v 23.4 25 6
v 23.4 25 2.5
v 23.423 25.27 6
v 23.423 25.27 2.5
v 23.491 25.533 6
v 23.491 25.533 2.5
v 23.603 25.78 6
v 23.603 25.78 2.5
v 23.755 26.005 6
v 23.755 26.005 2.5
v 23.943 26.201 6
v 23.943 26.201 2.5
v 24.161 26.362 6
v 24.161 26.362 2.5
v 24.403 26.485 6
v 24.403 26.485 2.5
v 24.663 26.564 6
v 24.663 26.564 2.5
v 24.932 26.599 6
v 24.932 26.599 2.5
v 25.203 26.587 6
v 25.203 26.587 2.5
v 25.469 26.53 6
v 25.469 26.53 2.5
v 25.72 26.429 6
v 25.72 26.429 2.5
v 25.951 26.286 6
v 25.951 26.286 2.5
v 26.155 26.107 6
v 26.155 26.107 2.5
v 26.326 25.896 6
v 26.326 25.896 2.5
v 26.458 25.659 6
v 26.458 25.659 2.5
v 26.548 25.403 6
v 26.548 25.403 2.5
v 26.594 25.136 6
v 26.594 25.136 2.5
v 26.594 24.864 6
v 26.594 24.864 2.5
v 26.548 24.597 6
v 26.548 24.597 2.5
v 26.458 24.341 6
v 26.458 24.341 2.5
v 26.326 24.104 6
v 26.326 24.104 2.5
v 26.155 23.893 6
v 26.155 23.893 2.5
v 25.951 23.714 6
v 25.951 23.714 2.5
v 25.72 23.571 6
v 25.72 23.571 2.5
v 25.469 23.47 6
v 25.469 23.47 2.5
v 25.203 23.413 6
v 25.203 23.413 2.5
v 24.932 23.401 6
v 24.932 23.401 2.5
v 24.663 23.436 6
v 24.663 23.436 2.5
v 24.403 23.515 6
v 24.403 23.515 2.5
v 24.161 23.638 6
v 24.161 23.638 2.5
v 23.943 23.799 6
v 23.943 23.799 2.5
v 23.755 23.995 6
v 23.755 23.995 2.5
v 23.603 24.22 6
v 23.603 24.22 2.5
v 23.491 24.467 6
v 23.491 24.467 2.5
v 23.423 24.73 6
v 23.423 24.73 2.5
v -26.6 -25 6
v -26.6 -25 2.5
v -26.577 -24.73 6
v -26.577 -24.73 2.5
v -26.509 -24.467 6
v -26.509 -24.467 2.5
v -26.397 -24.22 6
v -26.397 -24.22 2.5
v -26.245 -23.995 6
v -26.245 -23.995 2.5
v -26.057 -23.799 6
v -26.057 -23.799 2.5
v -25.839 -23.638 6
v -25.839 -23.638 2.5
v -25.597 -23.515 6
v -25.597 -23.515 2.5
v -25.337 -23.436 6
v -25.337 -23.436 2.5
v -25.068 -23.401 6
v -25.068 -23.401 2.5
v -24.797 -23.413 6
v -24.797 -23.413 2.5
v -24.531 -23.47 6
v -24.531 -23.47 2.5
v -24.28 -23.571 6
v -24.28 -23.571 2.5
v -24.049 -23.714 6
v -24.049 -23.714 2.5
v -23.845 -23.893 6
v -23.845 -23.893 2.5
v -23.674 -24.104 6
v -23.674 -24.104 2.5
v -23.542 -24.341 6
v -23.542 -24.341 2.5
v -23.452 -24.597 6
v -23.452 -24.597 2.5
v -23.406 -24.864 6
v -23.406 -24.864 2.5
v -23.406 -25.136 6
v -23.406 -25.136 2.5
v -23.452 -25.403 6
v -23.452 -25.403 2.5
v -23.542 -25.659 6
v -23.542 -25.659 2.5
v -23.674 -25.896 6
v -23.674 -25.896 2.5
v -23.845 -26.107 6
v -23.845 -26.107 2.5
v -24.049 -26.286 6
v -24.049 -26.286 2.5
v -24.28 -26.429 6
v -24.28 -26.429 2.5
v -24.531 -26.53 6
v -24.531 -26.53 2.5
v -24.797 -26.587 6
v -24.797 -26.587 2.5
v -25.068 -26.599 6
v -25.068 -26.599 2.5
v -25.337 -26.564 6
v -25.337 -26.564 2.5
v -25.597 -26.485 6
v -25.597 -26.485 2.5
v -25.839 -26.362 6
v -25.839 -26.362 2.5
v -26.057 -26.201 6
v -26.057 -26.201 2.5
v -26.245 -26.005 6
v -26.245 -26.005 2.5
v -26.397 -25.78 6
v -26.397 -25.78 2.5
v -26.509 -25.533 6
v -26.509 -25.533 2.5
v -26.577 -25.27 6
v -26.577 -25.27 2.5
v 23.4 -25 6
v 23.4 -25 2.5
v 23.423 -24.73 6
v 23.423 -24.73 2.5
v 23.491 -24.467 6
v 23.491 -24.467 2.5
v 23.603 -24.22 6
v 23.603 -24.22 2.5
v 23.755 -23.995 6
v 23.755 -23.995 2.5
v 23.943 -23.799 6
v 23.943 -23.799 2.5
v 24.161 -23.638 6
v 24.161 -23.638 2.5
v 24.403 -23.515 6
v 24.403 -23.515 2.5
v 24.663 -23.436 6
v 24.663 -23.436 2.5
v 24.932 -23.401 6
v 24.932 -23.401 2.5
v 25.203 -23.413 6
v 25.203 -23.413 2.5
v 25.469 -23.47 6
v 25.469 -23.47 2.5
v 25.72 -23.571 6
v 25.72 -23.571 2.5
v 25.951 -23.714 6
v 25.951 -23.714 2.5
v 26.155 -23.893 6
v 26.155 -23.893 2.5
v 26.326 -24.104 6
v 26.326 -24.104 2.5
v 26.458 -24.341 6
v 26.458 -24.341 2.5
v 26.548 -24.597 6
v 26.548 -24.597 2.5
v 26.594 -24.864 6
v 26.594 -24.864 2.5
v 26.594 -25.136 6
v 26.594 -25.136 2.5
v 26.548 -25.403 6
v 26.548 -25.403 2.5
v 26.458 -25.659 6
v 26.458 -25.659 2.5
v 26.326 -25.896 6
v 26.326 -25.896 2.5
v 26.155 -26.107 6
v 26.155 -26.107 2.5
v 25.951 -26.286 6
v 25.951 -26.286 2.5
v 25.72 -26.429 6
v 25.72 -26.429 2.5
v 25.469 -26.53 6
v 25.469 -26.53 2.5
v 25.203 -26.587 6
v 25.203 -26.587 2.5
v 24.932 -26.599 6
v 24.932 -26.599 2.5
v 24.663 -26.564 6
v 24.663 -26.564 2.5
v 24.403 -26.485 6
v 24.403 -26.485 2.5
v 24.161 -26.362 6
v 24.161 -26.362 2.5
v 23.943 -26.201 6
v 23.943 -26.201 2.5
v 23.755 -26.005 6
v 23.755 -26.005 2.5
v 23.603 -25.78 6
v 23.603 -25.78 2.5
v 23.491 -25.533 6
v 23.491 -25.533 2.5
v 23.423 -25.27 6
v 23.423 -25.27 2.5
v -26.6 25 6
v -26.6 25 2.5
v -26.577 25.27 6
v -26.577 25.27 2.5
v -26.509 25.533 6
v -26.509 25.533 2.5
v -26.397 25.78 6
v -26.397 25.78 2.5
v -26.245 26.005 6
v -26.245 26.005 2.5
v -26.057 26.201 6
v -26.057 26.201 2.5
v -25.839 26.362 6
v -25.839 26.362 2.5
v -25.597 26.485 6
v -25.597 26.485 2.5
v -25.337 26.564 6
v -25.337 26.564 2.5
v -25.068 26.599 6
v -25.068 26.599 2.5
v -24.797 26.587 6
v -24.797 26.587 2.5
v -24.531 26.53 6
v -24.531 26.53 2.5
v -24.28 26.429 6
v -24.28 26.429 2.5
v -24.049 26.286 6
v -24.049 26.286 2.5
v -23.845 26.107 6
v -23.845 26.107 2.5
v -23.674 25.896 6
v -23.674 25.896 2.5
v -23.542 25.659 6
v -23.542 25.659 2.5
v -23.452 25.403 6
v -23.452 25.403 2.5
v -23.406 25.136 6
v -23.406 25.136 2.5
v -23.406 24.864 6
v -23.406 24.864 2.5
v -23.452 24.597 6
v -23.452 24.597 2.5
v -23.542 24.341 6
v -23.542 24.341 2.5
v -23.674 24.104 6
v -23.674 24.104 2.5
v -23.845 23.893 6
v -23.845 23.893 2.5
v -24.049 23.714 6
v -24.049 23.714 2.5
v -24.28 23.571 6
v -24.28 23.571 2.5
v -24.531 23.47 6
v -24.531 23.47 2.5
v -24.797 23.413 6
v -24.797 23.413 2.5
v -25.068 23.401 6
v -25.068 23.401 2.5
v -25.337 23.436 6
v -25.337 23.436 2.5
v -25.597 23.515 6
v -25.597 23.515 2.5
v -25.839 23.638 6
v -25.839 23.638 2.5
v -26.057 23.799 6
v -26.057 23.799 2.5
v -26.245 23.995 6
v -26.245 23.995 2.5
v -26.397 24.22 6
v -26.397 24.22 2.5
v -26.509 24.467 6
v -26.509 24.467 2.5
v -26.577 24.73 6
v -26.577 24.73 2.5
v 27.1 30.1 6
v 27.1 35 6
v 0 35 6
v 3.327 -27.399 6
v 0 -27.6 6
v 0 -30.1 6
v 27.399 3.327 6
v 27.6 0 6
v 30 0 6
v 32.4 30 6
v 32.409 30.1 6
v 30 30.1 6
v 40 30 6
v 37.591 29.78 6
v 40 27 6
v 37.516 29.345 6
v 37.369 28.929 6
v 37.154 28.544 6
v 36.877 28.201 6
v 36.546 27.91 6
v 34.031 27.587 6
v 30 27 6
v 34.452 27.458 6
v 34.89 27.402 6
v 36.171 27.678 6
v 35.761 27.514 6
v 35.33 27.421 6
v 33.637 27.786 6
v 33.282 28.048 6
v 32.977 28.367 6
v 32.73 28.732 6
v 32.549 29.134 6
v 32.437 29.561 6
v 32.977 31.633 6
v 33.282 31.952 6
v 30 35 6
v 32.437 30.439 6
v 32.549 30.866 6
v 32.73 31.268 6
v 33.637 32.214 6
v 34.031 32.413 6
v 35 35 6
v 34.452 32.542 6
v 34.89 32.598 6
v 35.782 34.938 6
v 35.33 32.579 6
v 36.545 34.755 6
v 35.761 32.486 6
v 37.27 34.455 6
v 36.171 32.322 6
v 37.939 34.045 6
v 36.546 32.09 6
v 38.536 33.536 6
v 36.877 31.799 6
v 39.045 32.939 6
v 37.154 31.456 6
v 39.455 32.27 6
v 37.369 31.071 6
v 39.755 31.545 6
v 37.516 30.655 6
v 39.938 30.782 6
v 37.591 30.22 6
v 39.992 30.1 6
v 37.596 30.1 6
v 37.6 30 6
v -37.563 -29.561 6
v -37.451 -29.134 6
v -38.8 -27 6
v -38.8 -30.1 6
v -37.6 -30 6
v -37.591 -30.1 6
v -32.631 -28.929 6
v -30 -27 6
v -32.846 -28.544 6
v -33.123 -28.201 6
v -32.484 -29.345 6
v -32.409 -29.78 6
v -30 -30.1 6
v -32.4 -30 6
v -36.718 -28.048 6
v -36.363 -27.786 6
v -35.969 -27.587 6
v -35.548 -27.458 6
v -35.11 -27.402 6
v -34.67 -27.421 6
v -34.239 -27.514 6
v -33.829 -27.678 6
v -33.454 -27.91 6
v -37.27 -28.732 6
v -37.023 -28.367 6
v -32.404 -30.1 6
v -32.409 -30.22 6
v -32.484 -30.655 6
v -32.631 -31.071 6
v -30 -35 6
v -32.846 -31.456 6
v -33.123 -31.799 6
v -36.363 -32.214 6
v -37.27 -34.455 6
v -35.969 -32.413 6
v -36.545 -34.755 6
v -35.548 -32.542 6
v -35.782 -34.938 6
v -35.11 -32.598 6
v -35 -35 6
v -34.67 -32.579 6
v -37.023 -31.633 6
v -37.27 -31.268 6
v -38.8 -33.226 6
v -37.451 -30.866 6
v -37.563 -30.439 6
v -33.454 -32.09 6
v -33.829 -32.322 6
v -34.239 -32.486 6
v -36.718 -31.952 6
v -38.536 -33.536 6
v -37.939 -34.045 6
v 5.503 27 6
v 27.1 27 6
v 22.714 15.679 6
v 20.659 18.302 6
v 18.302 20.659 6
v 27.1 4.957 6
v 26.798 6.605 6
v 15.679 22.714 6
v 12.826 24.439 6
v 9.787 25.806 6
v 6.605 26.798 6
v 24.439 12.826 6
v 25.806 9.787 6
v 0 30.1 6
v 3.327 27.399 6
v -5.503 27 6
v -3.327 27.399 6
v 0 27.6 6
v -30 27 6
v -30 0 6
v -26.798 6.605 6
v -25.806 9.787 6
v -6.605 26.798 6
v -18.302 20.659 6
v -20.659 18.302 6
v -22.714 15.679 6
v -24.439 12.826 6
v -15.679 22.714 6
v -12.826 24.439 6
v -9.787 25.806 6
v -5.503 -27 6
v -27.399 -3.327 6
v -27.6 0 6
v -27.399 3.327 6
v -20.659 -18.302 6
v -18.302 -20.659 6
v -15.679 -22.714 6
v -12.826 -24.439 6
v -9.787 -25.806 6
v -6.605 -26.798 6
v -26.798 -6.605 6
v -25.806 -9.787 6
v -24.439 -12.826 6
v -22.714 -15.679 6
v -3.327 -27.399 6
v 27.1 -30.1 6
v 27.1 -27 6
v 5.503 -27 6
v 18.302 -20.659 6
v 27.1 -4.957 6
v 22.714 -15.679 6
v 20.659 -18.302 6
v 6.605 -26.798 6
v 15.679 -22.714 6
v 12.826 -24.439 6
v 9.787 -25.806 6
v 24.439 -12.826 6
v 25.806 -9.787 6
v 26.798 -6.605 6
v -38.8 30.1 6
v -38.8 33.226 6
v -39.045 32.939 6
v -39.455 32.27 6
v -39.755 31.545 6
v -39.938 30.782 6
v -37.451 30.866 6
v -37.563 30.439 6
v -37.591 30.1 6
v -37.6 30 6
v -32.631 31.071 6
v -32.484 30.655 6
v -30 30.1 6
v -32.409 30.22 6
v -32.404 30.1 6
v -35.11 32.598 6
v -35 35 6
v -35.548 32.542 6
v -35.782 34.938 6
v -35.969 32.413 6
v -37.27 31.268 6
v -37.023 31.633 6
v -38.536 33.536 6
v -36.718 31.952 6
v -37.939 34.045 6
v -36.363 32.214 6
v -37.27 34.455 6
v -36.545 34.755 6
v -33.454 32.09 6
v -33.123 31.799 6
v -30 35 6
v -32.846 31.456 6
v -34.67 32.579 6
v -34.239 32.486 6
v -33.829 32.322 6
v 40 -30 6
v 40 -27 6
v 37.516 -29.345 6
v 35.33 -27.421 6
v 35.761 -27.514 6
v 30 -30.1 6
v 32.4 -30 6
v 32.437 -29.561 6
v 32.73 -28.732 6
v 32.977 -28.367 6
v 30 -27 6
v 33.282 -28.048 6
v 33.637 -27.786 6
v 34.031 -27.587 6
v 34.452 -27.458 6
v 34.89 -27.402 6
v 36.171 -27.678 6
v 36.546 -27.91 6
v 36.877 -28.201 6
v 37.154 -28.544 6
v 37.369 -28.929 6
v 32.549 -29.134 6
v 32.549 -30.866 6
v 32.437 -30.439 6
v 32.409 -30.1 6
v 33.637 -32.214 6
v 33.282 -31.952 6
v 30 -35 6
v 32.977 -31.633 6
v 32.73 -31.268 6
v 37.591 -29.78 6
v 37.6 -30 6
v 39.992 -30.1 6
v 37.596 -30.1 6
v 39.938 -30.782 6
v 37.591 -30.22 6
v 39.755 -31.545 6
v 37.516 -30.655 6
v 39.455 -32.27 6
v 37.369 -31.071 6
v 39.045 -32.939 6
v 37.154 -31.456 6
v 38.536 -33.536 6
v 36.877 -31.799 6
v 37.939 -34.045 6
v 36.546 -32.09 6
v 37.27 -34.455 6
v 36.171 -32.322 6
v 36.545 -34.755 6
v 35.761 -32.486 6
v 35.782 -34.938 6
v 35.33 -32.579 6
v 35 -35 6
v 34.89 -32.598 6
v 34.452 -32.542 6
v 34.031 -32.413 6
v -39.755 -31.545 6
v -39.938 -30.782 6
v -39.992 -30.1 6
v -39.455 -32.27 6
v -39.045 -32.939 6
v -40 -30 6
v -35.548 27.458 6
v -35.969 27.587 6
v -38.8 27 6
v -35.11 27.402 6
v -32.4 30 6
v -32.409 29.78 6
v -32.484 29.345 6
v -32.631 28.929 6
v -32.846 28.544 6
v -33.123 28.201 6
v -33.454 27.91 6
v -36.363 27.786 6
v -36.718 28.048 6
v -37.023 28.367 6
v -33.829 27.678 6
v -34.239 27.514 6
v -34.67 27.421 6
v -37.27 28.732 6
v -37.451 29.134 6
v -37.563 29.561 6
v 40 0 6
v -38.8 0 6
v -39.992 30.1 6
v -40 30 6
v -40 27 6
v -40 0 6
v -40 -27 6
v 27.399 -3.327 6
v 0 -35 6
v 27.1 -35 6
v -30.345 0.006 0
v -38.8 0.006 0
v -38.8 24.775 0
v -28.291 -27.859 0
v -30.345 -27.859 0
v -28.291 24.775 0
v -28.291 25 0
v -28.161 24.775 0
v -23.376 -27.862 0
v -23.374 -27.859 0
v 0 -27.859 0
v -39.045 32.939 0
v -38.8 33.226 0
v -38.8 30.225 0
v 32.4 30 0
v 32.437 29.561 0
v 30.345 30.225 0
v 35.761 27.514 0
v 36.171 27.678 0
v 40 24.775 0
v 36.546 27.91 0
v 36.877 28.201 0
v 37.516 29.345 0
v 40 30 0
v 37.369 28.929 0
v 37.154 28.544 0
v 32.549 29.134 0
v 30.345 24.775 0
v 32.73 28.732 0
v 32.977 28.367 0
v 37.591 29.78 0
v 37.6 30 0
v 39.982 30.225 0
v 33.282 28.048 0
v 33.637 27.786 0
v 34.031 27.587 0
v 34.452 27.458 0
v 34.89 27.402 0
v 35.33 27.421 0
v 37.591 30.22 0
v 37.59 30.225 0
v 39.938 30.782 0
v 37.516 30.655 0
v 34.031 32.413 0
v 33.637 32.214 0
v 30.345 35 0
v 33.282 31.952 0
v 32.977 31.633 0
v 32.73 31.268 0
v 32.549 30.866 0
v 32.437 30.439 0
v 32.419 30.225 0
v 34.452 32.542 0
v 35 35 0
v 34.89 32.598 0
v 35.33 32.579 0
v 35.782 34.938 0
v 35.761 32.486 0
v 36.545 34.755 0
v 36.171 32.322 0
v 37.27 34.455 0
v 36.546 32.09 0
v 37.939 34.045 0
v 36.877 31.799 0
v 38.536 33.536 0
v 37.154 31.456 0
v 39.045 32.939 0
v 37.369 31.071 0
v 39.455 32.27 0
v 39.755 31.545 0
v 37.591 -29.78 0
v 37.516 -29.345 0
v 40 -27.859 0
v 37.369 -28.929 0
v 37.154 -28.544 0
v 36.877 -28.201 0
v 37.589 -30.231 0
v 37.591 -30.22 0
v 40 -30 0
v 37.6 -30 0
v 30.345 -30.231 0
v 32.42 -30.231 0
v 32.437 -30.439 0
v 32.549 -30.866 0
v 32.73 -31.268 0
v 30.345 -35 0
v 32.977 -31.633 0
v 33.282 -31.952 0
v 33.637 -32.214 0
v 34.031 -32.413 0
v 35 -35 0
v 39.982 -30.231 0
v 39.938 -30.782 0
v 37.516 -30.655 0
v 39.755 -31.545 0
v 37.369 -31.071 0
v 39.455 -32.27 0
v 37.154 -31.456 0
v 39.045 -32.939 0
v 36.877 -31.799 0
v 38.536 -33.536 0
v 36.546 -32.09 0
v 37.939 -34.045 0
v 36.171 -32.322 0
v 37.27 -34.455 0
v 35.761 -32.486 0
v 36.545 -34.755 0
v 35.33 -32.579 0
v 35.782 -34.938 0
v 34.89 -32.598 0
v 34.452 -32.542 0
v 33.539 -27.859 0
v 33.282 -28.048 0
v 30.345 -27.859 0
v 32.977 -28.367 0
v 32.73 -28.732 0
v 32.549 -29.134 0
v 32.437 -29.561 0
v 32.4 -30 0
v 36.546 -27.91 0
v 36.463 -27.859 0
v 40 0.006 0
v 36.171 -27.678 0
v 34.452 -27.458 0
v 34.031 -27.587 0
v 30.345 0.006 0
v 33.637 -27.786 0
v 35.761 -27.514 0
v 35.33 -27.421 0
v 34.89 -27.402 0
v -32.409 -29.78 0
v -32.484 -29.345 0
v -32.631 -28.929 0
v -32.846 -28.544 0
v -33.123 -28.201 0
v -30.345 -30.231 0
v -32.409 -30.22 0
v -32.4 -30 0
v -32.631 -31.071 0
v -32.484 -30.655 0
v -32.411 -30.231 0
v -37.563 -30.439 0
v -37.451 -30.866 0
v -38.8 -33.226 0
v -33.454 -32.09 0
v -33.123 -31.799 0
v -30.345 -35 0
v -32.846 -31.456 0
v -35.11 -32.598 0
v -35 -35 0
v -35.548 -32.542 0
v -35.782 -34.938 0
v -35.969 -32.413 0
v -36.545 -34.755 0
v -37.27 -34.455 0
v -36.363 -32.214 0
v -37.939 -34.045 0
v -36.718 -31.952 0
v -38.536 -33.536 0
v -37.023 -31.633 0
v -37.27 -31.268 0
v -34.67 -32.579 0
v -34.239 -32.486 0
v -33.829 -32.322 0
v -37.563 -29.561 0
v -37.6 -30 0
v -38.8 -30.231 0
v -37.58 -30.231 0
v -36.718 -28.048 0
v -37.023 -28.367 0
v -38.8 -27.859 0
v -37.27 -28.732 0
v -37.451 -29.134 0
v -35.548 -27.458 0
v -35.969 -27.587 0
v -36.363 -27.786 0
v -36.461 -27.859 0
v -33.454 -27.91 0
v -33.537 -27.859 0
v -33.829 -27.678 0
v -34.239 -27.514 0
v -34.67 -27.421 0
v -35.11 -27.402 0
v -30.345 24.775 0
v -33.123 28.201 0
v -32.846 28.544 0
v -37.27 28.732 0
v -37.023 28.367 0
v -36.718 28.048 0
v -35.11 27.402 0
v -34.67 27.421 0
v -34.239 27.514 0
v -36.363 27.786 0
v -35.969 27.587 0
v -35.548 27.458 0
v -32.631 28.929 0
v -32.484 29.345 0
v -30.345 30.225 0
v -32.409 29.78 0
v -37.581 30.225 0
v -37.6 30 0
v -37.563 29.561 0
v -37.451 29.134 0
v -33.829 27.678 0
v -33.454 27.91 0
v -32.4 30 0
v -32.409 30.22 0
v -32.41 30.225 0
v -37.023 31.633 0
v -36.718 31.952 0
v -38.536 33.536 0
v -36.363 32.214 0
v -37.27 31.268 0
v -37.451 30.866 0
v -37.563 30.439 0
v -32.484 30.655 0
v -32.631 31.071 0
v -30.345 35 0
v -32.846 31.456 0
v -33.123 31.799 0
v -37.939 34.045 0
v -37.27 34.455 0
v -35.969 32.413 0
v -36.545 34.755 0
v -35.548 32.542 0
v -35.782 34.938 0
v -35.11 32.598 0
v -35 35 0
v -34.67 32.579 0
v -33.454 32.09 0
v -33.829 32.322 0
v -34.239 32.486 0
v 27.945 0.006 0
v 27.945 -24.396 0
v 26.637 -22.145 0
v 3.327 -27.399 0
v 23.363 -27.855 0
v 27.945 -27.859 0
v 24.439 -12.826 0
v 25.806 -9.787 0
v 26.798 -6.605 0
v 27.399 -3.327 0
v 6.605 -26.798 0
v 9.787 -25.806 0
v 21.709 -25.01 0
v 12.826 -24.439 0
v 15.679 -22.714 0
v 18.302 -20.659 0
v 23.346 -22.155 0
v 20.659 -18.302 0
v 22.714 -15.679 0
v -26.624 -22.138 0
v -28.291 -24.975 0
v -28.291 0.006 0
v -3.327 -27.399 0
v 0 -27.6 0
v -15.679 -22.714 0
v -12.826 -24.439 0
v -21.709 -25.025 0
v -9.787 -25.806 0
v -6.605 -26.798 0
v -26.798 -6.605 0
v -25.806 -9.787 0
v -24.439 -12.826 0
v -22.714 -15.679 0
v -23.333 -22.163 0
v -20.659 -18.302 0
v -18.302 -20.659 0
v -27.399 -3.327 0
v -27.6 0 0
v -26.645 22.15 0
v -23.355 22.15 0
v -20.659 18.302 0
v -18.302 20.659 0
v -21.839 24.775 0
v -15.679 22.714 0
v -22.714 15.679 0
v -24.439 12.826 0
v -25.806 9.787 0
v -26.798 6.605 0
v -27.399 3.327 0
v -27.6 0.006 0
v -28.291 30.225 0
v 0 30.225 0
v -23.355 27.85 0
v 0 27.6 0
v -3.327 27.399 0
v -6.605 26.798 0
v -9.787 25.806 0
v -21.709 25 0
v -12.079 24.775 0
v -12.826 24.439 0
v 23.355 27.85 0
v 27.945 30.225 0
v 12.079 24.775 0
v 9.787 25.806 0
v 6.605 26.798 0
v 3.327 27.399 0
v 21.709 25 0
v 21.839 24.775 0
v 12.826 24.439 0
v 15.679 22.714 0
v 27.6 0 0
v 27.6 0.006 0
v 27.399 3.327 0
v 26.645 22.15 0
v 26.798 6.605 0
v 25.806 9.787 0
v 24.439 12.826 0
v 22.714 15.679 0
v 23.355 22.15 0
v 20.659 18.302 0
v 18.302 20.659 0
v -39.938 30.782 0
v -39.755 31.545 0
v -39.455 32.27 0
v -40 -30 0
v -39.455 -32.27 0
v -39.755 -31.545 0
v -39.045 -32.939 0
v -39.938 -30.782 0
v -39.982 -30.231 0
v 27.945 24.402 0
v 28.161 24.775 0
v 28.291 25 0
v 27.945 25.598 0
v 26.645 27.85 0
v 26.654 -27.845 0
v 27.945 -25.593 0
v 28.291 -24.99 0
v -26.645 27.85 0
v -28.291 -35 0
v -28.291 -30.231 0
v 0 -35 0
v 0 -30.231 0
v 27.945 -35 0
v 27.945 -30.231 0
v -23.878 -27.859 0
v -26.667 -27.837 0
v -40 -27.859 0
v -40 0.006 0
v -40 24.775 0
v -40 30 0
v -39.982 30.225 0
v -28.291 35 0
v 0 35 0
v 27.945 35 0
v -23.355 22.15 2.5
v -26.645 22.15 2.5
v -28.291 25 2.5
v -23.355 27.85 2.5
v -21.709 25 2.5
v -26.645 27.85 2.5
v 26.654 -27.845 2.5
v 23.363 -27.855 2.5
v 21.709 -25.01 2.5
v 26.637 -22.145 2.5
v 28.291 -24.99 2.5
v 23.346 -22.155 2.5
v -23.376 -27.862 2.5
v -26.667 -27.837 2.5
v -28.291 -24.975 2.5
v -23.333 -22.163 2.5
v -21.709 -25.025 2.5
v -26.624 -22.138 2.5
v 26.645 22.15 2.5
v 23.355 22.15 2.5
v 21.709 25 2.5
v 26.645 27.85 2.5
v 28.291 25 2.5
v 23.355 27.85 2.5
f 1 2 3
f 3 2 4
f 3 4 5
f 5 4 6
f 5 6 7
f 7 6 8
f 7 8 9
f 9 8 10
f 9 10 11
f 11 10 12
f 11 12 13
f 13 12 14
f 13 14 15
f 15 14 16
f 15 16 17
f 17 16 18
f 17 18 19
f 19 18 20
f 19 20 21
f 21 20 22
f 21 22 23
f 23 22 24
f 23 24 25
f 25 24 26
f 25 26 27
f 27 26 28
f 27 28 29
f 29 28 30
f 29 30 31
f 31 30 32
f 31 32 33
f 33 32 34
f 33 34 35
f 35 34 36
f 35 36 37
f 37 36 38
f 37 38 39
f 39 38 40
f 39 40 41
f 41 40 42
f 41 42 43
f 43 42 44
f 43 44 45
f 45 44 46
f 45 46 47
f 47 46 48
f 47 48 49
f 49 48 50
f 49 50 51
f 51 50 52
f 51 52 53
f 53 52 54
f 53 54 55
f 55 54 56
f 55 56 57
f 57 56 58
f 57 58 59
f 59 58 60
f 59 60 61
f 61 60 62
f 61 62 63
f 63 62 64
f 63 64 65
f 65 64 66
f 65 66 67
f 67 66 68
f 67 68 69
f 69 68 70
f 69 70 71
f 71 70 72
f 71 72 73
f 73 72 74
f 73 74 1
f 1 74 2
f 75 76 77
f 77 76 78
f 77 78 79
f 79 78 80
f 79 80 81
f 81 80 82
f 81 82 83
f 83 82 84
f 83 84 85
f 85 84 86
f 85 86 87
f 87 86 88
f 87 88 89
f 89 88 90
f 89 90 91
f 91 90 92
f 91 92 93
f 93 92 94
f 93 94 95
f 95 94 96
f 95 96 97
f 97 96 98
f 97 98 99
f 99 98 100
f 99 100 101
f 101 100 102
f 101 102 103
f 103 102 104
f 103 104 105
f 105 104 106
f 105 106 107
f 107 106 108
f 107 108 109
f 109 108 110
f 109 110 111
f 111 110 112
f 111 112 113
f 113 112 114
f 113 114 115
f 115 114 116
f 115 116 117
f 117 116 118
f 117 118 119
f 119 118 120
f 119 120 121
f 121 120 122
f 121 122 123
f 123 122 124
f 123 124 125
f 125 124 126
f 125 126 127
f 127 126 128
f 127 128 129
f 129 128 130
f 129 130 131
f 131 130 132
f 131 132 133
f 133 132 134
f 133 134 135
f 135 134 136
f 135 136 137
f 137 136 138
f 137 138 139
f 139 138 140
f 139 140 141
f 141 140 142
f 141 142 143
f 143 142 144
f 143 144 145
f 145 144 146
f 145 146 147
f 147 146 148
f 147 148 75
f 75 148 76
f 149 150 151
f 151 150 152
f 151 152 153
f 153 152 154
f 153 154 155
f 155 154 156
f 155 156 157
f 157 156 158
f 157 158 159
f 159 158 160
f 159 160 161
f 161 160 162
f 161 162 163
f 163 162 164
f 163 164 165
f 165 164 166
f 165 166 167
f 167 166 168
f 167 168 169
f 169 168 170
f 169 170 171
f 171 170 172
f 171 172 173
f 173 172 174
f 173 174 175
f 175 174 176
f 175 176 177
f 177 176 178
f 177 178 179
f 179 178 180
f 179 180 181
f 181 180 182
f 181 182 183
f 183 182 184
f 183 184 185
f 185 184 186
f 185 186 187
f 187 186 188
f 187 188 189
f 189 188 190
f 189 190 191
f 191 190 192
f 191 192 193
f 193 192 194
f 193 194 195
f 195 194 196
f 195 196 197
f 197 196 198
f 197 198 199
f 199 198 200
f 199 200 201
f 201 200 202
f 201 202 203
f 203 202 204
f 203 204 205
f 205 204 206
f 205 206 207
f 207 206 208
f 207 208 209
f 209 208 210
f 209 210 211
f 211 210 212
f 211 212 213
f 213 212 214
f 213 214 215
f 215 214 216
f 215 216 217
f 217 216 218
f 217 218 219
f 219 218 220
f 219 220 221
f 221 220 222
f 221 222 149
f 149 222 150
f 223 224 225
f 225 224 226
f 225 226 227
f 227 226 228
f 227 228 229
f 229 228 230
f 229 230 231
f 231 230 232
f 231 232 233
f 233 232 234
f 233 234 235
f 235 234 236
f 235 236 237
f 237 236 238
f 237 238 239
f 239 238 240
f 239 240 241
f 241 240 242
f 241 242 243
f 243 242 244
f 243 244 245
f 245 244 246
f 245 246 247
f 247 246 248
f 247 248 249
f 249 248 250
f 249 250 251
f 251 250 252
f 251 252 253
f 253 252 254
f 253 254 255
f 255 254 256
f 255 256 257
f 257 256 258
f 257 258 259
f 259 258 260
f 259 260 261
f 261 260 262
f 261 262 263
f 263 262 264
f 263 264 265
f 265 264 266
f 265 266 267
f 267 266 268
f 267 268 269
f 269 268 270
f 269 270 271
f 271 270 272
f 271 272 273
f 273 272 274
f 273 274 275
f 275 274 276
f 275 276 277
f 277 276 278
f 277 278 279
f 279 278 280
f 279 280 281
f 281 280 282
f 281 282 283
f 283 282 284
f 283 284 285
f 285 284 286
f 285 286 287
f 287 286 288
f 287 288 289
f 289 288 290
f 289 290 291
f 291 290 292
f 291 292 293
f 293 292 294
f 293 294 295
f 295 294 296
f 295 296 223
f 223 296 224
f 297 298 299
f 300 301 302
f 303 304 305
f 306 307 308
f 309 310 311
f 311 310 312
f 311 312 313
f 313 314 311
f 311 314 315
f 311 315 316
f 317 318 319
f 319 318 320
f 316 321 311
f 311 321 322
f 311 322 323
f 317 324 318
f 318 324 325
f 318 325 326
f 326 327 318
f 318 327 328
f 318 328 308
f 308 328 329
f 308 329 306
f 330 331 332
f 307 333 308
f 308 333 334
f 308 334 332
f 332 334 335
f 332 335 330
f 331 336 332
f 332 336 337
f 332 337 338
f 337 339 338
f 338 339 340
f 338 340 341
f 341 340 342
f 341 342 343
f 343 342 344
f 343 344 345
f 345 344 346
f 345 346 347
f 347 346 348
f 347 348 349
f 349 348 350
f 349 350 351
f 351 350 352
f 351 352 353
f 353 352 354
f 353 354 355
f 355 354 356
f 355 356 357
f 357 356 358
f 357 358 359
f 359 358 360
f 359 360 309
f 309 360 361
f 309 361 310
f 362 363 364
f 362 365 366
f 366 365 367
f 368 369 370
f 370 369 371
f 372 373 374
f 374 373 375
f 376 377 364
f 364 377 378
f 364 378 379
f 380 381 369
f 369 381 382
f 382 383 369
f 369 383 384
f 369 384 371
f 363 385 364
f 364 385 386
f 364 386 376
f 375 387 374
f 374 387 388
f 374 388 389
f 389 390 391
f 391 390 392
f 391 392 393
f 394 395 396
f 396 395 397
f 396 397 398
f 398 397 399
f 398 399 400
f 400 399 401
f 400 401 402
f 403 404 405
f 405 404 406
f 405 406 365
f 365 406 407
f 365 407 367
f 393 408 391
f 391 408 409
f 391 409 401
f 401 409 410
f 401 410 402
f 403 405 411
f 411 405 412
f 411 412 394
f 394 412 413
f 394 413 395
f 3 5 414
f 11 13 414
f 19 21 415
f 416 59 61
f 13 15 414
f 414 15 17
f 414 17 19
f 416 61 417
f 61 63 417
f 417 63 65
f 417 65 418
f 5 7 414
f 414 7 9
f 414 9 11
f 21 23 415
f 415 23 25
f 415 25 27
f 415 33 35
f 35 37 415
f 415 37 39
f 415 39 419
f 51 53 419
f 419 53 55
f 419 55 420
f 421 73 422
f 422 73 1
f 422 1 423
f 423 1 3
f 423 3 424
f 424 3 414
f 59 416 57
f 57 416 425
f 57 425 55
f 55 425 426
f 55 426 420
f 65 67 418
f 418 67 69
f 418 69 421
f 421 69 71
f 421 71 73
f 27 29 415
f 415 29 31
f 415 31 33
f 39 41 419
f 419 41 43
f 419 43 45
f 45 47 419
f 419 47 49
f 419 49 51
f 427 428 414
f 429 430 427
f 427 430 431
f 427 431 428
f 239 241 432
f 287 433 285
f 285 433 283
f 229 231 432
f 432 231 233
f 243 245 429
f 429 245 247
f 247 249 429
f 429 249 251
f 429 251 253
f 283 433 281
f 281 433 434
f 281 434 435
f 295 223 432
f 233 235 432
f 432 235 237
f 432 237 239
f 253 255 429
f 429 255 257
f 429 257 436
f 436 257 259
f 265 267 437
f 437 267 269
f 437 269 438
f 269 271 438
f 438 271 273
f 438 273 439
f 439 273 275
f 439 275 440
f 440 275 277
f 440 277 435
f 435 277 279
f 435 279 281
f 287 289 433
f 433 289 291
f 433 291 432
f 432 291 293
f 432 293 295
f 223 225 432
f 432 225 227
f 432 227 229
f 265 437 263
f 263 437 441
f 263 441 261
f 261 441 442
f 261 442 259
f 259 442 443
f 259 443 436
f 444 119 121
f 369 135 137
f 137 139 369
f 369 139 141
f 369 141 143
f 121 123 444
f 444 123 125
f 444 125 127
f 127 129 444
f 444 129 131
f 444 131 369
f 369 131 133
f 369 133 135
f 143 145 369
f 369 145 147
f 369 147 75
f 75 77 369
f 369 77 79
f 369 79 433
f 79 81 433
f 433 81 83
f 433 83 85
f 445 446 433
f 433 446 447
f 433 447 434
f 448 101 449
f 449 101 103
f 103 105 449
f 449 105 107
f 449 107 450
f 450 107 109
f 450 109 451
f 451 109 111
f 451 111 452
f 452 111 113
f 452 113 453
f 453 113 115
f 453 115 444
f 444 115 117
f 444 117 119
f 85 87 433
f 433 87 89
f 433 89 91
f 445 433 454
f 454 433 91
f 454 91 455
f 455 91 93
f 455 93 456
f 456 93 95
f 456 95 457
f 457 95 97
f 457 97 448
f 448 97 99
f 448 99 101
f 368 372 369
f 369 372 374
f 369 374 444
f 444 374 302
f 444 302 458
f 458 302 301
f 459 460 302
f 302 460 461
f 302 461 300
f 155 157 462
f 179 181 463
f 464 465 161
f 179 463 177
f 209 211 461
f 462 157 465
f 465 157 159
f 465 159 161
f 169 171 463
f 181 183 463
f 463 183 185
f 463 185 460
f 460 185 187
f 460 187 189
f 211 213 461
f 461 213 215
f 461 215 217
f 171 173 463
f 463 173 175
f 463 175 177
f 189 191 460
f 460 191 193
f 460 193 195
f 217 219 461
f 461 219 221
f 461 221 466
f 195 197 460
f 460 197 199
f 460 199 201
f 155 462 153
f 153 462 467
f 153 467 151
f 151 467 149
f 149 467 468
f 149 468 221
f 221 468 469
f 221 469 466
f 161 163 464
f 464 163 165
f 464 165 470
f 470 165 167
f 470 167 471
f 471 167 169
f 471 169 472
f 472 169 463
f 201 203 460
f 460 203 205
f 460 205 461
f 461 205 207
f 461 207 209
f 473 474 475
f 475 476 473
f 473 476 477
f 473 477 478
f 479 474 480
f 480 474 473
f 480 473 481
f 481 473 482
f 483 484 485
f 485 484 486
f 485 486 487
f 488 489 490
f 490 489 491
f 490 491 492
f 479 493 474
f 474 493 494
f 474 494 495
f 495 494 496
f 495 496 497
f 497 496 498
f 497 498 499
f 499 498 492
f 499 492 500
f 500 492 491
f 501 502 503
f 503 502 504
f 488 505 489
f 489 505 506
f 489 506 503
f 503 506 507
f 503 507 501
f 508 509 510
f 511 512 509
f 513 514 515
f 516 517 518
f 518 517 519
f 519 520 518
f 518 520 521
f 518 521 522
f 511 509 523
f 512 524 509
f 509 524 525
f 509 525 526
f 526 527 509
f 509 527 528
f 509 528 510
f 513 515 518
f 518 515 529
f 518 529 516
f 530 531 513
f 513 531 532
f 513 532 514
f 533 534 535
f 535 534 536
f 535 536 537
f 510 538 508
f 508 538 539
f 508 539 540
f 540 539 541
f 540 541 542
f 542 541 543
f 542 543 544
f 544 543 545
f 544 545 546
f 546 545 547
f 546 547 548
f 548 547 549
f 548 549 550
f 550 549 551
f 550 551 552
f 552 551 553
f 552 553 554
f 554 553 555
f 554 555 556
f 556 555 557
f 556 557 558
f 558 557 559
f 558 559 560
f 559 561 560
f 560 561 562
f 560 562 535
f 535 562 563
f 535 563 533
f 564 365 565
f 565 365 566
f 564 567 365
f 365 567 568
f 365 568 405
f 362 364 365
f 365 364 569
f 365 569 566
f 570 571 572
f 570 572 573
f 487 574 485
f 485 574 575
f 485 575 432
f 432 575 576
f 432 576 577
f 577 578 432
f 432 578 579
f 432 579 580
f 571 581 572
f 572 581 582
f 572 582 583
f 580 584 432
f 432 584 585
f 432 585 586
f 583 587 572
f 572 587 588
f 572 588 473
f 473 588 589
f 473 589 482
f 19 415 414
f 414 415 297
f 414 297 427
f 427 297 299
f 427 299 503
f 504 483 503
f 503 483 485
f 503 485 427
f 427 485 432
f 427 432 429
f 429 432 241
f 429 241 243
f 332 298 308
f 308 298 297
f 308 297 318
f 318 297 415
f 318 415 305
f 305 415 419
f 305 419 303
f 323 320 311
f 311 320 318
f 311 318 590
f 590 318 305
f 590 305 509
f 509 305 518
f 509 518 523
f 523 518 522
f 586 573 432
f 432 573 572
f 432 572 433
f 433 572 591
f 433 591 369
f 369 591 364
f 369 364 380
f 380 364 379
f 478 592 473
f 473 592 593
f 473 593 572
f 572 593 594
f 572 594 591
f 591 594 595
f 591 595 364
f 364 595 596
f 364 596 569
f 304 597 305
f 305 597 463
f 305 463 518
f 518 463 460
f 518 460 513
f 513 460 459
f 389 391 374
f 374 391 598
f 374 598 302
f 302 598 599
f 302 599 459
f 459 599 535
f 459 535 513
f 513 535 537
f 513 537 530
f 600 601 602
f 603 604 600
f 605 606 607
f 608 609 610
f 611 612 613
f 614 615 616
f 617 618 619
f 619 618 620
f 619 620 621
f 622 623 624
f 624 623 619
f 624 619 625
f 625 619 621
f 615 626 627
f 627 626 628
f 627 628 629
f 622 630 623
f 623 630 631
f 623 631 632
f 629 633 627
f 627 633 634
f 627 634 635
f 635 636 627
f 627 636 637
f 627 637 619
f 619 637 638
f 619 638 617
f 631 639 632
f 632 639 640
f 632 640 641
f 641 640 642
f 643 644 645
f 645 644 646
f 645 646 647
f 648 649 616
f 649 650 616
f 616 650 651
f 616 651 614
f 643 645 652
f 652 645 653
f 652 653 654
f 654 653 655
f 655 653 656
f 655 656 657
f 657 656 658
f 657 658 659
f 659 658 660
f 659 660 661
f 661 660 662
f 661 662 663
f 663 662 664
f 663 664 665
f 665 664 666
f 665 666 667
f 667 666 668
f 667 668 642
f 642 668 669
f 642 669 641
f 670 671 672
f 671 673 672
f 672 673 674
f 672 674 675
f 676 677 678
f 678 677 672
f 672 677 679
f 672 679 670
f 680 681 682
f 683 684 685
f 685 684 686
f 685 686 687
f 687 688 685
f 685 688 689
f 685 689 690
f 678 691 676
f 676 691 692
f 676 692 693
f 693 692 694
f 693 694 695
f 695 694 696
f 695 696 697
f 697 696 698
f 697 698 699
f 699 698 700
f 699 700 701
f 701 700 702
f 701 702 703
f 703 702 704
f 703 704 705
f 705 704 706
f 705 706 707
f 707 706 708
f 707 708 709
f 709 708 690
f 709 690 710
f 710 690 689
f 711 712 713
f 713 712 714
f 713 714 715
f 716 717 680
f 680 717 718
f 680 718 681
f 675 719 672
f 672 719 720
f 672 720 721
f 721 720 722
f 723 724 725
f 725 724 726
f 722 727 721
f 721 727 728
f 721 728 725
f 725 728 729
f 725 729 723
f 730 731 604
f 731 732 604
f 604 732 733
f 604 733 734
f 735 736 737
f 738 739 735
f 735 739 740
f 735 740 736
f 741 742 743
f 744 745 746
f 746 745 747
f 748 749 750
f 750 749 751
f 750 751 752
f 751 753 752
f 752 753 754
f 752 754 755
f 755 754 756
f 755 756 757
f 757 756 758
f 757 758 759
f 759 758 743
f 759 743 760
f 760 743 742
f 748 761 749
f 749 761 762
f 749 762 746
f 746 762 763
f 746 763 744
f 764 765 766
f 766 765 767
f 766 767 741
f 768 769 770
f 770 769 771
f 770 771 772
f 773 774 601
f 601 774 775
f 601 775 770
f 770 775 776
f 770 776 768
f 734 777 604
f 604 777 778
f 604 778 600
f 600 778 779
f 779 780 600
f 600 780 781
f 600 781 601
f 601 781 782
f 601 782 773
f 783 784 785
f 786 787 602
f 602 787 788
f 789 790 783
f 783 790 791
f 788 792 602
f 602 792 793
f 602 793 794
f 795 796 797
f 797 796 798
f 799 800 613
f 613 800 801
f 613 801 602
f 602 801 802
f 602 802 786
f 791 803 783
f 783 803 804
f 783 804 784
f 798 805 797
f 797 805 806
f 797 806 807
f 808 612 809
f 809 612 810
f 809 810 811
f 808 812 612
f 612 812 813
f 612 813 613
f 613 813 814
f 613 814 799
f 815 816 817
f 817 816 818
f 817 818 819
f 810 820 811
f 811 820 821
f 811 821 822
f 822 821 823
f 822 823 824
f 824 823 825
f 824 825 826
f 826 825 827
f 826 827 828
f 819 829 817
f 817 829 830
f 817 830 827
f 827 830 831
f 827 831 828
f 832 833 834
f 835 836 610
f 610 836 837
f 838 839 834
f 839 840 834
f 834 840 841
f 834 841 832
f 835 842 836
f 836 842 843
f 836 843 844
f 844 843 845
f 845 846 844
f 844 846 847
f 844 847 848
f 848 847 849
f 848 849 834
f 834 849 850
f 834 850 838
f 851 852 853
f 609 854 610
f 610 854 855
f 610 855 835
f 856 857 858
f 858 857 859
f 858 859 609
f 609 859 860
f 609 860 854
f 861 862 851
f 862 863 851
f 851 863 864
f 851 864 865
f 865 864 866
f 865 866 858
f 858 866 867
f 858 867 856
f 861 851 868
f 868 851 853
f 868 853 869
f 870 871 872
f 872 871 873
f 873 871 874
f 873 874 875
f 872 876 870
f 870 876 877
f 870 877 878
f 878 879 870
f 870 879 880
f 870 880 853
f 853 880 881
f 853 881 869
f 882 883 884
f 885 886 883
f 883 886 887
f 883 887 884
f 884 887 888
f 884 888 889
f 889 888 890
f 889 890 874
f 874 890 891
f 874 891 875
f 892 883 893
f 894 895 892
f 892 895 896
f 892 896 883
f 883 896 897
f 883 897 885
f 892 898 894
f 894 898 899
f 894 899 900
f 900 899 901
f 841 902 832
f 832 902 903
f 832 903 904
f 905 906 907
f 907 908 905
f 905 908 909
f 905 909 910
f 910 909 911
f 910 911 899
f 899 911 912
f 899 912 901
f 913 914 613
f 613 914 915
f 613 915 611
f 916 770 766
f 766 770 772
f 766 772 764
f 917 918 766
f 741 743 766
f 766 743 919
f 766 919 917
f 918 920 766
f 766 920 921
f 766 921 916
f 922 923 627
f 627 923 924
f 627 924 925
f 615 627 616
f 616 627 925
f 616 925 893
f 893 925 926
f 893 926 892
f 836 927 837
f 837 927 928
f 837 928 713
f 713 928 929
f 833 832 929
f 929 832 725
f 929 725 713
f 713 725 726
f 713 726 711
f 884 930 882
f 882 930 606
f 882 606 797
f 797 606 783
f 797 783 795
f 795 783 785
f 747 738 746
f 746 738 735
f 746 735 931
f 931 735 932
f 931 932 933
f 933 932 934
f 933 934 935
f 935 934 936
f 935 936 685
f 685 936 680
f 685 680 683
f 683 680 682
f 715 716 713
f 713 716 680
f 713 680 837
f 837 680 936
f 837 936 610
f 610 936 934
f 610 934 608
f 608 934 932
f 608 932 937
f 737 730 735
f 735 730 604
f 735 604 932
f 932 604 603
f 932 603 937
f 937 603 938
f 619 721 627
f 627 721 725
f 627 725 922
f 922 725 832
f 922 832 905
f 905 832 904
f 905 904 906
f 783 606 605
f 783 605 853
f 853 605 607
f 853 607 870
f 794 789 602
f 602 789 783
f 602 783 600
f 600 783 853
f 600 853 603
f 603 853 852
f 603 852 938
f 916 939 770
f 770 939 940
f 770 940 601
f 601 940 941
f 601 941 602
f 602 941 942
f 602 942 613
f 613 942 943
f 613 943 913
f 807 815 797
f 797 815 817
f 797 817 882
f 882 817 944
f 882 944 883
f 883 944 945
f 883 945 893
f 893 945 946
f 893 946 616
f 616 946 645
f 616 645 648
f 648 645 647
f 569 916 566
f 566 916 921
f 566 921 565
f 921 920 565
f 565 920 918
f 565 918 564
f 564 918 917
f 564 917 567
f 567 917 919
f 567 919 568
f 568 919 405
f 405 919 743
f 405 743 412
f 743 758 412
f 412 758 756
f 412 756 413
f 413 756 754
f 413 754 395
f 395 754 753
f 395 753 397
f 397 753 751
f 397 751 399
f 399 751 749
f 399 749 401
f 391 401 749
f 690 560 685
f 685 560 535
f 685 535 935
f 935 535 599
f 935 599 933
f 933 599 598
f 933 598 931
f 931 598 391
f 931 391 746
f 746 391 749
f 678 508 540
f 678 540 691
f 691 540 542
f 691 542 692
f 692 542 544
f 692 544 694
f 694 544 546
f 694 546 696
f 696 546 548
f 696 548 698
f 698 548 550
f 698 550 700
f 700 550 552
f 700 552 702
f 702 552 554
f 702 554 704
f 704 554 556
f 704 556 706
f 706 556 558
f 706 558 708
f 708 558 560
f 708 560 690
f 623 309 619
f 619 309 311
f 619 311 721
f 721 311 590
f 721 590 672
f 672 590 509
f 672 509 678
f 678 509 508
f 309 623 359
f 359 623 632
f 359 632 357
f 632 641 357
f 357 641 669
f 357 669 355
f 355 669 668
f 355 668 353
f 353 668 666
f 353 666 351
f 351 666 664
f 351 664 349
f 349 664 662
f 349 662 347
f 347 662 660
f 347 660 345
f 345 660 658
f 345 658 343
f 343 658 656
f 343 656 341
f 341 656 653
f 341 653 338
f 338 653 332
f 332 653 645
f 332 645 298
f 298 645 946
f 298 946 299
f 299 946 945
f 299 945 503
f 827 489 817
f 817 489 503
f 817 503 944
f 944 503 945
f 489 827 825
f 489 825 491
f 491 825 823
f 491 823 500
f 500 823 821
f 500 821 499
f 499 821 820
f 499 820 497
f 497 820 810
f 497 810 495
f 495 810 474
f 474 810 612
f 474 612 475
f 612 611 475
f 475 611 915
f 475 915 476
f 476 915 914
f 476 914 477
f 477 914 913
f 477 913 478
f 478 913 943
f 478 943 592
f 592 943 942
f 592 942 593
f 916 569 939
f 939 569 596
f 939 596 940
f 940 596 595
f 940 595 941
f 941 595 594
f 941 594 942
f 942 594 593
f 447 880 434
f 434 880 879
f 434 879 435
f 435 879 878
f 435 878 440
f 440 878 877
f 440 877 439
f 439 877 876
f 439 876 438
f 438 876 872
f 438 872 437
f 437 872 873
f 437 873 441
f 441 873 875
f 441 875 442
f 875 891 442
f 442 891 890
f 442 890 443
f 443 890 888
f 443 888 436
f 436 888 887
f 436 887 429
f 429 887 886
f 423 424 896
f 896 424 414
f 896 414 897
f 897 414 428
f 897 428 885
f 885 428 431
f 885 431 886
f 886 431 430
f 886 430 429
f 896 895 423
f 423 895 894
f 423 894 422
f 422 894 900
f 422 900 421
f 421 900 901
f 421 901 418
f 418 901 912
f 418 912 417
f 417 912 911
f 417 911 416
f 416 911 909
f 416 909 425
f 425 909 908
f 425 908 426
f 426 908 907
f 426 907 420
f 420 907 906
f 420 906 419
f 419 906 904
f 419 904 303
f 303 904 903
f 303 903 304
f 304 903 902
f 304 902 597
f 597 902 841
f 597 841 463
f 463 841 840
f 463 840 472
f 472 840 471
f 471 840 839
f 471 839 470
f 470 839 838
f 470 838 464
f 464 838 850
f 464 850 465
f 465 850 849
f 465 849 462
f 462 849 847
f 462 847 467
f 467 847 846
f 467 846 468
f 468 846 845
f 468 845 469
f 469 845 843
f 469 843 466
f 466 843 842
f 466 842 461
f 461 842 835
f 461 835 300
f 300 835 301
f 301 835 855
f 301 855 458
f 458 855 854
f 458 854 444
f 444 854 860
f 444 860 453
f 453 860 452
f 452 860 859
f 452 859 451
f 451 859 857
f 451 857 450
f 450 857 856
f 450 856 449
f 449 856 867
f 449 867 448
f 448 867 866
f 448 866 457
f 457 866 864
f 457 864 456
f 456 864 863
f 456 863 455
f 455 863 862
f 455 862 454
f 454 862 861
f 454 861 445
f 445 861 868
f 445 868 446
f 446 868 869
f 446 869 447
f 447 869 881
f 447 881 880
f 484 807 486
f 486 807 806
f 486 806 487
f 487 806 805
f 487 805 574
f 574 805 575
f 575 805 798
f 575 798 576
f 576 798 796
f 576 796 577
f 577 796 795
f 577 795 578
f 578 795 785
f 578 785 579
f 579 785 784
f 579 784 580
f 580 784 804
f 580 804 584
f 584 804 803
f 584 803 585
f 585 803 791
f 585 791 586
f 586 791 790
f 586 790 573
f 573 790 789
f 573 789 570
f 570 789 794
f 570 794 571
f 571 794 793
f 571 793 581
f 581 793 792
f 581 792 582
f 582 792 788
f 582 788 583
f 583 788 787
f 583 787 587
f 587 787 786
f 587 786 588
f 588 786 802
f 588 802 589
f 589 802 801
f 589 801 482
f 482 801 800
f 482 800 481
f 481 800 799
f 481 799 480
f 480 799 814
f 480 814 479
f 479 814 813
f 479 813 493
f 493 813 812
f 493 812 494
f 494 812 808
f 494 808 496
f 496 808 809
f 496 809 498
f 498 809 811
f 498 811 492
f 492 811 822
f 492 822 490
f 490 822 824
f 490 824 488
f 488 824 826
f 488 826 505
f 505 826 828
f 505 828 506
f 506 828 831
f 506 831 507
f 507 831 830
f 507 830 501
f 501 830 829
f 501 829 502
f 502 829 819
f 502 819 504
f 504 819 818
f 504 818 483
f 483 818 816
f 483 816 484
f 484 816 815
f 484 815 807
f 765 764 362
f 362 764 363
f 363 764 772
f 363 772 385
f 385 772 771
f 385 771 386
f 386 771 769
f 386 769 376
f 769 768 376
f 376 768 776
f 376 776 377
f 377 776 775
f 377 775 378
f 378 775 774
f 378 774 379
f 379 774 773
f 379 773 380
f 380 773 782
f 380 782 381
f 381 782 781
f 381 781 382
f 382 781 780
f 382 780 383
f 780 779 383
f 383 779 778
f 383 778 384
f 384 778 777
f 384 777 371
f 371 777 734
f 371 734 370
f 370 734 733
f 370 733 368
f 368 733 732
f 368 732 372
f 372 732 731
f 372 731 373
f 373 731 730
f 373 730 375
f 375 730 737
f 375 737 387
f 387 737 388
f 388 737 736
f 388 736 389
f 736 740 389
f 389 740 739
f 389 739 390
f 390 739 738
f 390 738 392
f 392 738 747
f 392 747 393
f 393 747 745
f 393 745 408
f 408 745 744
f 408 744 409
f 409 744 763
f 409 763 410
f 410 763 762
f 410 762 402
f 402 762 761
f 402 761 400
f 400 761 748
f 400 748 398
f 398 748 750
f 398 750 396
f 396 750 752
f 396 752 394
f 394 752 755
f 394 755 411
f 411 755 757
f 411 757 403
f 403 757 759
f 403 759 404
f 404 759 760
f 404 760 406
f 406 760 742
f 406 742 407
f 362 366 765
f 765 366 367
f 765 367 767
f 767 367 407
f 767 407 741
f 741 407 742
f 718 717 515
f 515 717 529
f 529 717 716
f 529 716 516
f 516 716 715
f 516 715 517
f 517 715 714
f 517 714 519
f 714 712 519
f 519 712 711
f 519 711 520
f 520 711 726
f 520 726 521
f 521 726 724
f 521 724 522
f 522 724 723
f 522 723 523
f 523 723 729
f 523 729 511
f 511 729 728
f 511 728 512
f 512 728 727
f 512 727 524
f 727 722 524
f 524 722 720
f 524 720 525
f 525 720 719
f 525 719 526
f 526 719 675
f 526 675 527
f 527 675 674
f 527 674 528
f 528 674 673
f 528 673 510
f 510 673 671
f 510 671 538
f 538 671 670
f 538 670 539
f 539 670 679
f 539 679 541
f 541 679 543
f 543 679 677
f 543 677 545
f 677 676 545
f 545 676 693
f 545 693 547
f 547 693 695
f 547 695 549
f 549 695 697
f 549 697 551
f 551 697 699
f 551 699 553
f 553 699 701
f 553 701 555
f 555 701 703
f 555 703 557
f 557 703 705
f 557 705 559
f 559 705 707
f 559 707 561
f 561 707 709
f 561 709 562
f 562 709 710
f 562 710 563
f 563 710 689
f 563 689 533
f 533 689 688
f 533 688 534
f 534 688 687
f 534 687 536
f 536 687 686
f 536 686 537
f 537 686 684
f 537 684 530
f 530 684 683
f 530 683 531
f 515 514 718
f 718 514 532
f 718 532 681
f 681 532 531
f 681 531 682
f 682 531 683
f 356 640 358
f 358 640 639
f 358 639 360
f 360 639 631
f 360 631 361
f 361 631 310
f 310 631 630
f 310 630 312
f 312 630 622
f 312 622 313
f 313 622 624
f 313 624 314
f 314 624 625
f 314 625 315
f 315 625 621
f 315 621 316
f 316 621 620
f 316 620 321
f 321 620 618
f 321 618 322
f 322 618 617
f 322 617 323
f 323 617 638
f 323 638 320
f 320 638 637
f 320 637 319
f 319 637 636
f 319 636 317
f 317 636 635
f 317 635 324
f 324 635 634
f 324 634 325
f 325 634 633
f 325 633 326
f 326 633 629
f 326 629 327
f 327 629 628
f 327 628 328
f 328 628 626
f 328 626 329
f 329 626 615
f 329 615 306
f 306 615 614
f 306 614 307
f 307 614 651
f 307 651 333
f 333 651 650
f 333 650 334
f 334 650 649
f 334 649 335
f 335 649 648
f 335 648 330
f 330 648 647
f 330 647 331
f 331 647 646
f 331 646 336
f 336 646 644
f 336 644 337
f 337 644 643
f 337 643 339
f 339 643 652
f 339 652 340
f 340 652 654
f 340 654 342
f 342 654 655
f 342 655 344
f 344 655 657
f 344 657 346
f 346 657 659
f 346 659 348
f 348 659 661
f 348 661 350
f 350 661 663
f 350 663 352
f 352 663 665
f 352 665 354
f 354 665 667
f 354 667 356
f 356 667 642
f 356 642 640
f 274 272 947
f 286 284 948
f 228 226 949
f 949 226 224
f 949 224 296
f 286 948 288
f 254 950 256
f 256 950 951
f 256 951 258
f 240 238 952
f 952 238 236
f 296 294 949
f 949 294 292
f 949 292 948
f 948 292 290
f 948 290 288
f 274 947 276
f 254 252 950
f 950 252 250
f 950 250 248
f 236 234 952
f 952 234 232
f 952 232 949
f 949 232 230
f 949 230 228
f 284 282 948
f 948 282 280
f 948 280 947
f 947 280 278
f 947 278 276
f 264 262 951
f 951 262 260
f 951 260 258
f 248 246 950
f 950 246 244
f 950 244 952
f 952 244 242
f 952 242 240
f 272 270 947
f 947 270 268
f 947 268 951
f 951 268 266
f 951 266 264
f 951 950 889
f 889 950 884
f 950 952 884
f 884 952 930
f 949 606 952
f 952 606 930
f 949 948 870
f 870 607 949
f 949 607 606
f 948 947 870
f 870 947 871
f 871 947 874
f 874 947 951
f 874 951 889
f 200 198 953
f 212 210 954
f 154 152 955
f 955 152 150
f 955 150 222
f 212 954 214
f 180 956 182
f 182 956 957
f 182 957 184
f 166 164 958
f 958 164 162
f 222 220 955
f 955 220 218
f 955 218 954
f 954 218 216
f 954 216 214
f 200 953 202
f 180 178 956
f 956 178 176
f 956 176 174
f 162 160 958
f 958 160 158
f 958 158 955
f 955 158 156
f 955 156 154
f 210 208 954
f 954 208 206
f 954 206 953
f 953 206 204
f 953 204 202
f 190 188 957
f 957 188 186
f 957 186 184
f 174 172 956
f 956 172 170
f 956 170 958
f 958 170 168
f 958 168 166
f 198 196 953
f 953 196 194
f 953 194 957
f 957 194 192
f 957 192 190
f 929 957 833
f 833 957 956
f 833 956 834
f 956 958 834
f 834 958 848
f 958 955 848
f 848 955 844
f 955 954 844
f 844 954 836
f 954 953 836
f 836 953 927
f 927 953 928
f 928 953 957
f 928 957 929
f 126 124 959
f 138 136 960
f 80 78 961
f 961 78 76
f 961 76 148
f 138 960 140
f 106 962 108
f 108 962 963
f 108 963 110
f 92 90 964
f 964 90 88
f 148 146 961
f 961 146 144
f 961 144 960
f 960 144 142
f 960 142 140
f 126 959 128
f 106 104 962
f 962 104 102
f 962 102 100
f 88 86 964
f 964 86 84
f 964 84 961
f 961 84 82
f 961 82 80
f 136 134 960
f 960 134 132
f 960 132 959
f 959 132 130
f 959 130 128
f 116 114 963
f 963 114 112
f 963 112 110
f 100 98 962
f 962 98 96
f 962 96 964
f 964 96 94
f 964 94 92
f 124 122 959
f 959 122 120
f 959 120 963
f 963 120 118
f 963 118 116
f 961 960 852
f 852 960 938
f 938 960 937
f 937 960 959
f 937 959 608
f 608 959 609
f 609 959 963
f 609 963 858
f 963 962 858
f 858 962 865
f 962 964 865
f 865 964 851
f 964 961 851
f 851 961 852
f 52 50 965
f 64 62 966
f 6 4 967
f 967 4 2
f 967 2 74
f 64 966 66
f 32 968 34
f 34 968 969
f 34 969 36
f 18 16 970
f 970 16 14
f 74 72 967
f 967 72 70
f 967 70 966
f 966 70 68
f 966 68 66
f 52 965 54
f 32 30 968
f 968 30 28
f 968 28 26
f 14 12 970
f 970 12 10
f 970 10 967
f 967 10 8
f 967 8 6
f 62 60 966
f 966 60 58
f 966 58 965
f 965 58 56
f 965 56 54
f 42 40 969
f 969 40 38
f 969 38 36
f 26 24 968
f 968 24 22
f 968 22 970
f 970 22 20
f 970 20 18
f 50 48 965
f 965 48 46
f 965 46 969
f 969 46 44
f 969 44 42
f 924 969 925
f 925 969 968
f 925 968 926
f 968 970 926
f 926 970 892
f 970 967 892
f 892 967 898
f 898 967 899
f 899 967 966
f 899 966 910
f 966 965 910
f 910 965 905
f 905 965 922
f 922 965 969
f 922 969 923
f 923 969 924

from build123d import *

# Parameters (mm, degrees)
SKETCH1_R           = 27.6
SKETCH1_R_2         = 2.6
BOSS_EXTRUDE1_DEPTH = 6
SKETCH4_R           = 1.6
CUT_EXTRUDE2_DEPTH  = 54.488316481
CUT_EXTRUDE3_DEPTH  = 2.5


with BuildPart() as part:
    # Sketch1 → Boss-Extrude1 (new body)
    with BuildSketch(Plane.XY):
        with BuildLine():
            Line((-35, 35), (35, 35))
            ThreePointArc((35, 35), (38.535533906, 33.535533906), (40, 30))
            Line((40, 30), (40, -30))
            ThreePointArc((40, -30), (38.535533906, -33.535533906), (35, -35))
            Line((35, -35), (-35, -35))
            ThreePointArc((-35, -35), (-38.535533906, -33.535533906), (-40, -30))
            Line((-40, -30), (-40, 30))
            ThreePointArc((-40, 30), (-38.535533906, 33.535533906), (-35, 35))
        make_face()
        Circle(SKETCH1_R, mode=Mode.SUBTRACT)
        with Locations((-35, 30)):
            Circle(SKETCH1_R_2, mode=Mode.SUBTRACT)
        with Locations((-35, -30)):
            Circle(SKETCH1_R_2, mode=Mode.SUBTRACT)
        with Locations((35, -30)):
            Circle(SKETCH1_R_2, mode=Mode.SUBTRACT)
        with Locations((35, 30)):
            Circle(SKETCH1_R_2, mode=Mode.SUBTRACT)
    extrude(amount=BOSS_EXTRUDE1_DEPTH)

    # Sketch4 → Cut-Extrude2 (cut, through all)
    with BuildSketch(Plane(origin=(0, 0, 0), x_dir=(-1, 0, 0), z_dir=(0, 0, -1))):
        with Locations((-25, 25)):
            Circle(SKETCH4_R)
        with Locations((25, 25)):
            Circle(SKETCH4_R)
        with Locations((-25, -25)):
            Circle(SKETCH4_R)
        with Locations((25, -25)):
            Circle(SKETCH4_R)
    extrude(amount=-CUT_EXTRUDE2_DEPTH, mode=Mode.SUBTRACT)

    # Sketch5 → Cut-Extrude3 (cut)
    with BuildSketch(Plane(origin=(0, 0, 0), x_dir=(-1, 0, 0), z_dir=(0, 0, -1))):
        Polygon((-28.290896534, 25), (-26.645448267, 22.15), (-23.354551733, 22.15), (-21.709103466, 25), (-23.354551733, 27.85), (-26.645448267, 27.85), align=None)
        Polygon((21.709103466, 25), (23.354551733, 22.15), (26.645448267, 22.15), (28.290896534, 25), (26.645448267, 27.85), (23.354551733, 27.85), align=None)
        Polygon((-28.29088256, -24.990409574), (-26.653746833, -27.845192685), (-23.362864273, -27.854783111), (-21.70911744, -25.009590426), (-23.346253167, -22.154807315), (-26.637135727, -22.145216889), align=None)
        Polygon((28.290801988, -24.975054549), (26.6237976, -22.137609154), (23.332995612, -22.162554605), (21.709198012, -25.024945451), (23.3762024, -27.862390846), (26.667004388, -27.837445395), align=None)
    extrude(amount=-CUT_EXTRUDE3_DEPTH, mode=Mode.SUBTRACT)


solid = part.part
